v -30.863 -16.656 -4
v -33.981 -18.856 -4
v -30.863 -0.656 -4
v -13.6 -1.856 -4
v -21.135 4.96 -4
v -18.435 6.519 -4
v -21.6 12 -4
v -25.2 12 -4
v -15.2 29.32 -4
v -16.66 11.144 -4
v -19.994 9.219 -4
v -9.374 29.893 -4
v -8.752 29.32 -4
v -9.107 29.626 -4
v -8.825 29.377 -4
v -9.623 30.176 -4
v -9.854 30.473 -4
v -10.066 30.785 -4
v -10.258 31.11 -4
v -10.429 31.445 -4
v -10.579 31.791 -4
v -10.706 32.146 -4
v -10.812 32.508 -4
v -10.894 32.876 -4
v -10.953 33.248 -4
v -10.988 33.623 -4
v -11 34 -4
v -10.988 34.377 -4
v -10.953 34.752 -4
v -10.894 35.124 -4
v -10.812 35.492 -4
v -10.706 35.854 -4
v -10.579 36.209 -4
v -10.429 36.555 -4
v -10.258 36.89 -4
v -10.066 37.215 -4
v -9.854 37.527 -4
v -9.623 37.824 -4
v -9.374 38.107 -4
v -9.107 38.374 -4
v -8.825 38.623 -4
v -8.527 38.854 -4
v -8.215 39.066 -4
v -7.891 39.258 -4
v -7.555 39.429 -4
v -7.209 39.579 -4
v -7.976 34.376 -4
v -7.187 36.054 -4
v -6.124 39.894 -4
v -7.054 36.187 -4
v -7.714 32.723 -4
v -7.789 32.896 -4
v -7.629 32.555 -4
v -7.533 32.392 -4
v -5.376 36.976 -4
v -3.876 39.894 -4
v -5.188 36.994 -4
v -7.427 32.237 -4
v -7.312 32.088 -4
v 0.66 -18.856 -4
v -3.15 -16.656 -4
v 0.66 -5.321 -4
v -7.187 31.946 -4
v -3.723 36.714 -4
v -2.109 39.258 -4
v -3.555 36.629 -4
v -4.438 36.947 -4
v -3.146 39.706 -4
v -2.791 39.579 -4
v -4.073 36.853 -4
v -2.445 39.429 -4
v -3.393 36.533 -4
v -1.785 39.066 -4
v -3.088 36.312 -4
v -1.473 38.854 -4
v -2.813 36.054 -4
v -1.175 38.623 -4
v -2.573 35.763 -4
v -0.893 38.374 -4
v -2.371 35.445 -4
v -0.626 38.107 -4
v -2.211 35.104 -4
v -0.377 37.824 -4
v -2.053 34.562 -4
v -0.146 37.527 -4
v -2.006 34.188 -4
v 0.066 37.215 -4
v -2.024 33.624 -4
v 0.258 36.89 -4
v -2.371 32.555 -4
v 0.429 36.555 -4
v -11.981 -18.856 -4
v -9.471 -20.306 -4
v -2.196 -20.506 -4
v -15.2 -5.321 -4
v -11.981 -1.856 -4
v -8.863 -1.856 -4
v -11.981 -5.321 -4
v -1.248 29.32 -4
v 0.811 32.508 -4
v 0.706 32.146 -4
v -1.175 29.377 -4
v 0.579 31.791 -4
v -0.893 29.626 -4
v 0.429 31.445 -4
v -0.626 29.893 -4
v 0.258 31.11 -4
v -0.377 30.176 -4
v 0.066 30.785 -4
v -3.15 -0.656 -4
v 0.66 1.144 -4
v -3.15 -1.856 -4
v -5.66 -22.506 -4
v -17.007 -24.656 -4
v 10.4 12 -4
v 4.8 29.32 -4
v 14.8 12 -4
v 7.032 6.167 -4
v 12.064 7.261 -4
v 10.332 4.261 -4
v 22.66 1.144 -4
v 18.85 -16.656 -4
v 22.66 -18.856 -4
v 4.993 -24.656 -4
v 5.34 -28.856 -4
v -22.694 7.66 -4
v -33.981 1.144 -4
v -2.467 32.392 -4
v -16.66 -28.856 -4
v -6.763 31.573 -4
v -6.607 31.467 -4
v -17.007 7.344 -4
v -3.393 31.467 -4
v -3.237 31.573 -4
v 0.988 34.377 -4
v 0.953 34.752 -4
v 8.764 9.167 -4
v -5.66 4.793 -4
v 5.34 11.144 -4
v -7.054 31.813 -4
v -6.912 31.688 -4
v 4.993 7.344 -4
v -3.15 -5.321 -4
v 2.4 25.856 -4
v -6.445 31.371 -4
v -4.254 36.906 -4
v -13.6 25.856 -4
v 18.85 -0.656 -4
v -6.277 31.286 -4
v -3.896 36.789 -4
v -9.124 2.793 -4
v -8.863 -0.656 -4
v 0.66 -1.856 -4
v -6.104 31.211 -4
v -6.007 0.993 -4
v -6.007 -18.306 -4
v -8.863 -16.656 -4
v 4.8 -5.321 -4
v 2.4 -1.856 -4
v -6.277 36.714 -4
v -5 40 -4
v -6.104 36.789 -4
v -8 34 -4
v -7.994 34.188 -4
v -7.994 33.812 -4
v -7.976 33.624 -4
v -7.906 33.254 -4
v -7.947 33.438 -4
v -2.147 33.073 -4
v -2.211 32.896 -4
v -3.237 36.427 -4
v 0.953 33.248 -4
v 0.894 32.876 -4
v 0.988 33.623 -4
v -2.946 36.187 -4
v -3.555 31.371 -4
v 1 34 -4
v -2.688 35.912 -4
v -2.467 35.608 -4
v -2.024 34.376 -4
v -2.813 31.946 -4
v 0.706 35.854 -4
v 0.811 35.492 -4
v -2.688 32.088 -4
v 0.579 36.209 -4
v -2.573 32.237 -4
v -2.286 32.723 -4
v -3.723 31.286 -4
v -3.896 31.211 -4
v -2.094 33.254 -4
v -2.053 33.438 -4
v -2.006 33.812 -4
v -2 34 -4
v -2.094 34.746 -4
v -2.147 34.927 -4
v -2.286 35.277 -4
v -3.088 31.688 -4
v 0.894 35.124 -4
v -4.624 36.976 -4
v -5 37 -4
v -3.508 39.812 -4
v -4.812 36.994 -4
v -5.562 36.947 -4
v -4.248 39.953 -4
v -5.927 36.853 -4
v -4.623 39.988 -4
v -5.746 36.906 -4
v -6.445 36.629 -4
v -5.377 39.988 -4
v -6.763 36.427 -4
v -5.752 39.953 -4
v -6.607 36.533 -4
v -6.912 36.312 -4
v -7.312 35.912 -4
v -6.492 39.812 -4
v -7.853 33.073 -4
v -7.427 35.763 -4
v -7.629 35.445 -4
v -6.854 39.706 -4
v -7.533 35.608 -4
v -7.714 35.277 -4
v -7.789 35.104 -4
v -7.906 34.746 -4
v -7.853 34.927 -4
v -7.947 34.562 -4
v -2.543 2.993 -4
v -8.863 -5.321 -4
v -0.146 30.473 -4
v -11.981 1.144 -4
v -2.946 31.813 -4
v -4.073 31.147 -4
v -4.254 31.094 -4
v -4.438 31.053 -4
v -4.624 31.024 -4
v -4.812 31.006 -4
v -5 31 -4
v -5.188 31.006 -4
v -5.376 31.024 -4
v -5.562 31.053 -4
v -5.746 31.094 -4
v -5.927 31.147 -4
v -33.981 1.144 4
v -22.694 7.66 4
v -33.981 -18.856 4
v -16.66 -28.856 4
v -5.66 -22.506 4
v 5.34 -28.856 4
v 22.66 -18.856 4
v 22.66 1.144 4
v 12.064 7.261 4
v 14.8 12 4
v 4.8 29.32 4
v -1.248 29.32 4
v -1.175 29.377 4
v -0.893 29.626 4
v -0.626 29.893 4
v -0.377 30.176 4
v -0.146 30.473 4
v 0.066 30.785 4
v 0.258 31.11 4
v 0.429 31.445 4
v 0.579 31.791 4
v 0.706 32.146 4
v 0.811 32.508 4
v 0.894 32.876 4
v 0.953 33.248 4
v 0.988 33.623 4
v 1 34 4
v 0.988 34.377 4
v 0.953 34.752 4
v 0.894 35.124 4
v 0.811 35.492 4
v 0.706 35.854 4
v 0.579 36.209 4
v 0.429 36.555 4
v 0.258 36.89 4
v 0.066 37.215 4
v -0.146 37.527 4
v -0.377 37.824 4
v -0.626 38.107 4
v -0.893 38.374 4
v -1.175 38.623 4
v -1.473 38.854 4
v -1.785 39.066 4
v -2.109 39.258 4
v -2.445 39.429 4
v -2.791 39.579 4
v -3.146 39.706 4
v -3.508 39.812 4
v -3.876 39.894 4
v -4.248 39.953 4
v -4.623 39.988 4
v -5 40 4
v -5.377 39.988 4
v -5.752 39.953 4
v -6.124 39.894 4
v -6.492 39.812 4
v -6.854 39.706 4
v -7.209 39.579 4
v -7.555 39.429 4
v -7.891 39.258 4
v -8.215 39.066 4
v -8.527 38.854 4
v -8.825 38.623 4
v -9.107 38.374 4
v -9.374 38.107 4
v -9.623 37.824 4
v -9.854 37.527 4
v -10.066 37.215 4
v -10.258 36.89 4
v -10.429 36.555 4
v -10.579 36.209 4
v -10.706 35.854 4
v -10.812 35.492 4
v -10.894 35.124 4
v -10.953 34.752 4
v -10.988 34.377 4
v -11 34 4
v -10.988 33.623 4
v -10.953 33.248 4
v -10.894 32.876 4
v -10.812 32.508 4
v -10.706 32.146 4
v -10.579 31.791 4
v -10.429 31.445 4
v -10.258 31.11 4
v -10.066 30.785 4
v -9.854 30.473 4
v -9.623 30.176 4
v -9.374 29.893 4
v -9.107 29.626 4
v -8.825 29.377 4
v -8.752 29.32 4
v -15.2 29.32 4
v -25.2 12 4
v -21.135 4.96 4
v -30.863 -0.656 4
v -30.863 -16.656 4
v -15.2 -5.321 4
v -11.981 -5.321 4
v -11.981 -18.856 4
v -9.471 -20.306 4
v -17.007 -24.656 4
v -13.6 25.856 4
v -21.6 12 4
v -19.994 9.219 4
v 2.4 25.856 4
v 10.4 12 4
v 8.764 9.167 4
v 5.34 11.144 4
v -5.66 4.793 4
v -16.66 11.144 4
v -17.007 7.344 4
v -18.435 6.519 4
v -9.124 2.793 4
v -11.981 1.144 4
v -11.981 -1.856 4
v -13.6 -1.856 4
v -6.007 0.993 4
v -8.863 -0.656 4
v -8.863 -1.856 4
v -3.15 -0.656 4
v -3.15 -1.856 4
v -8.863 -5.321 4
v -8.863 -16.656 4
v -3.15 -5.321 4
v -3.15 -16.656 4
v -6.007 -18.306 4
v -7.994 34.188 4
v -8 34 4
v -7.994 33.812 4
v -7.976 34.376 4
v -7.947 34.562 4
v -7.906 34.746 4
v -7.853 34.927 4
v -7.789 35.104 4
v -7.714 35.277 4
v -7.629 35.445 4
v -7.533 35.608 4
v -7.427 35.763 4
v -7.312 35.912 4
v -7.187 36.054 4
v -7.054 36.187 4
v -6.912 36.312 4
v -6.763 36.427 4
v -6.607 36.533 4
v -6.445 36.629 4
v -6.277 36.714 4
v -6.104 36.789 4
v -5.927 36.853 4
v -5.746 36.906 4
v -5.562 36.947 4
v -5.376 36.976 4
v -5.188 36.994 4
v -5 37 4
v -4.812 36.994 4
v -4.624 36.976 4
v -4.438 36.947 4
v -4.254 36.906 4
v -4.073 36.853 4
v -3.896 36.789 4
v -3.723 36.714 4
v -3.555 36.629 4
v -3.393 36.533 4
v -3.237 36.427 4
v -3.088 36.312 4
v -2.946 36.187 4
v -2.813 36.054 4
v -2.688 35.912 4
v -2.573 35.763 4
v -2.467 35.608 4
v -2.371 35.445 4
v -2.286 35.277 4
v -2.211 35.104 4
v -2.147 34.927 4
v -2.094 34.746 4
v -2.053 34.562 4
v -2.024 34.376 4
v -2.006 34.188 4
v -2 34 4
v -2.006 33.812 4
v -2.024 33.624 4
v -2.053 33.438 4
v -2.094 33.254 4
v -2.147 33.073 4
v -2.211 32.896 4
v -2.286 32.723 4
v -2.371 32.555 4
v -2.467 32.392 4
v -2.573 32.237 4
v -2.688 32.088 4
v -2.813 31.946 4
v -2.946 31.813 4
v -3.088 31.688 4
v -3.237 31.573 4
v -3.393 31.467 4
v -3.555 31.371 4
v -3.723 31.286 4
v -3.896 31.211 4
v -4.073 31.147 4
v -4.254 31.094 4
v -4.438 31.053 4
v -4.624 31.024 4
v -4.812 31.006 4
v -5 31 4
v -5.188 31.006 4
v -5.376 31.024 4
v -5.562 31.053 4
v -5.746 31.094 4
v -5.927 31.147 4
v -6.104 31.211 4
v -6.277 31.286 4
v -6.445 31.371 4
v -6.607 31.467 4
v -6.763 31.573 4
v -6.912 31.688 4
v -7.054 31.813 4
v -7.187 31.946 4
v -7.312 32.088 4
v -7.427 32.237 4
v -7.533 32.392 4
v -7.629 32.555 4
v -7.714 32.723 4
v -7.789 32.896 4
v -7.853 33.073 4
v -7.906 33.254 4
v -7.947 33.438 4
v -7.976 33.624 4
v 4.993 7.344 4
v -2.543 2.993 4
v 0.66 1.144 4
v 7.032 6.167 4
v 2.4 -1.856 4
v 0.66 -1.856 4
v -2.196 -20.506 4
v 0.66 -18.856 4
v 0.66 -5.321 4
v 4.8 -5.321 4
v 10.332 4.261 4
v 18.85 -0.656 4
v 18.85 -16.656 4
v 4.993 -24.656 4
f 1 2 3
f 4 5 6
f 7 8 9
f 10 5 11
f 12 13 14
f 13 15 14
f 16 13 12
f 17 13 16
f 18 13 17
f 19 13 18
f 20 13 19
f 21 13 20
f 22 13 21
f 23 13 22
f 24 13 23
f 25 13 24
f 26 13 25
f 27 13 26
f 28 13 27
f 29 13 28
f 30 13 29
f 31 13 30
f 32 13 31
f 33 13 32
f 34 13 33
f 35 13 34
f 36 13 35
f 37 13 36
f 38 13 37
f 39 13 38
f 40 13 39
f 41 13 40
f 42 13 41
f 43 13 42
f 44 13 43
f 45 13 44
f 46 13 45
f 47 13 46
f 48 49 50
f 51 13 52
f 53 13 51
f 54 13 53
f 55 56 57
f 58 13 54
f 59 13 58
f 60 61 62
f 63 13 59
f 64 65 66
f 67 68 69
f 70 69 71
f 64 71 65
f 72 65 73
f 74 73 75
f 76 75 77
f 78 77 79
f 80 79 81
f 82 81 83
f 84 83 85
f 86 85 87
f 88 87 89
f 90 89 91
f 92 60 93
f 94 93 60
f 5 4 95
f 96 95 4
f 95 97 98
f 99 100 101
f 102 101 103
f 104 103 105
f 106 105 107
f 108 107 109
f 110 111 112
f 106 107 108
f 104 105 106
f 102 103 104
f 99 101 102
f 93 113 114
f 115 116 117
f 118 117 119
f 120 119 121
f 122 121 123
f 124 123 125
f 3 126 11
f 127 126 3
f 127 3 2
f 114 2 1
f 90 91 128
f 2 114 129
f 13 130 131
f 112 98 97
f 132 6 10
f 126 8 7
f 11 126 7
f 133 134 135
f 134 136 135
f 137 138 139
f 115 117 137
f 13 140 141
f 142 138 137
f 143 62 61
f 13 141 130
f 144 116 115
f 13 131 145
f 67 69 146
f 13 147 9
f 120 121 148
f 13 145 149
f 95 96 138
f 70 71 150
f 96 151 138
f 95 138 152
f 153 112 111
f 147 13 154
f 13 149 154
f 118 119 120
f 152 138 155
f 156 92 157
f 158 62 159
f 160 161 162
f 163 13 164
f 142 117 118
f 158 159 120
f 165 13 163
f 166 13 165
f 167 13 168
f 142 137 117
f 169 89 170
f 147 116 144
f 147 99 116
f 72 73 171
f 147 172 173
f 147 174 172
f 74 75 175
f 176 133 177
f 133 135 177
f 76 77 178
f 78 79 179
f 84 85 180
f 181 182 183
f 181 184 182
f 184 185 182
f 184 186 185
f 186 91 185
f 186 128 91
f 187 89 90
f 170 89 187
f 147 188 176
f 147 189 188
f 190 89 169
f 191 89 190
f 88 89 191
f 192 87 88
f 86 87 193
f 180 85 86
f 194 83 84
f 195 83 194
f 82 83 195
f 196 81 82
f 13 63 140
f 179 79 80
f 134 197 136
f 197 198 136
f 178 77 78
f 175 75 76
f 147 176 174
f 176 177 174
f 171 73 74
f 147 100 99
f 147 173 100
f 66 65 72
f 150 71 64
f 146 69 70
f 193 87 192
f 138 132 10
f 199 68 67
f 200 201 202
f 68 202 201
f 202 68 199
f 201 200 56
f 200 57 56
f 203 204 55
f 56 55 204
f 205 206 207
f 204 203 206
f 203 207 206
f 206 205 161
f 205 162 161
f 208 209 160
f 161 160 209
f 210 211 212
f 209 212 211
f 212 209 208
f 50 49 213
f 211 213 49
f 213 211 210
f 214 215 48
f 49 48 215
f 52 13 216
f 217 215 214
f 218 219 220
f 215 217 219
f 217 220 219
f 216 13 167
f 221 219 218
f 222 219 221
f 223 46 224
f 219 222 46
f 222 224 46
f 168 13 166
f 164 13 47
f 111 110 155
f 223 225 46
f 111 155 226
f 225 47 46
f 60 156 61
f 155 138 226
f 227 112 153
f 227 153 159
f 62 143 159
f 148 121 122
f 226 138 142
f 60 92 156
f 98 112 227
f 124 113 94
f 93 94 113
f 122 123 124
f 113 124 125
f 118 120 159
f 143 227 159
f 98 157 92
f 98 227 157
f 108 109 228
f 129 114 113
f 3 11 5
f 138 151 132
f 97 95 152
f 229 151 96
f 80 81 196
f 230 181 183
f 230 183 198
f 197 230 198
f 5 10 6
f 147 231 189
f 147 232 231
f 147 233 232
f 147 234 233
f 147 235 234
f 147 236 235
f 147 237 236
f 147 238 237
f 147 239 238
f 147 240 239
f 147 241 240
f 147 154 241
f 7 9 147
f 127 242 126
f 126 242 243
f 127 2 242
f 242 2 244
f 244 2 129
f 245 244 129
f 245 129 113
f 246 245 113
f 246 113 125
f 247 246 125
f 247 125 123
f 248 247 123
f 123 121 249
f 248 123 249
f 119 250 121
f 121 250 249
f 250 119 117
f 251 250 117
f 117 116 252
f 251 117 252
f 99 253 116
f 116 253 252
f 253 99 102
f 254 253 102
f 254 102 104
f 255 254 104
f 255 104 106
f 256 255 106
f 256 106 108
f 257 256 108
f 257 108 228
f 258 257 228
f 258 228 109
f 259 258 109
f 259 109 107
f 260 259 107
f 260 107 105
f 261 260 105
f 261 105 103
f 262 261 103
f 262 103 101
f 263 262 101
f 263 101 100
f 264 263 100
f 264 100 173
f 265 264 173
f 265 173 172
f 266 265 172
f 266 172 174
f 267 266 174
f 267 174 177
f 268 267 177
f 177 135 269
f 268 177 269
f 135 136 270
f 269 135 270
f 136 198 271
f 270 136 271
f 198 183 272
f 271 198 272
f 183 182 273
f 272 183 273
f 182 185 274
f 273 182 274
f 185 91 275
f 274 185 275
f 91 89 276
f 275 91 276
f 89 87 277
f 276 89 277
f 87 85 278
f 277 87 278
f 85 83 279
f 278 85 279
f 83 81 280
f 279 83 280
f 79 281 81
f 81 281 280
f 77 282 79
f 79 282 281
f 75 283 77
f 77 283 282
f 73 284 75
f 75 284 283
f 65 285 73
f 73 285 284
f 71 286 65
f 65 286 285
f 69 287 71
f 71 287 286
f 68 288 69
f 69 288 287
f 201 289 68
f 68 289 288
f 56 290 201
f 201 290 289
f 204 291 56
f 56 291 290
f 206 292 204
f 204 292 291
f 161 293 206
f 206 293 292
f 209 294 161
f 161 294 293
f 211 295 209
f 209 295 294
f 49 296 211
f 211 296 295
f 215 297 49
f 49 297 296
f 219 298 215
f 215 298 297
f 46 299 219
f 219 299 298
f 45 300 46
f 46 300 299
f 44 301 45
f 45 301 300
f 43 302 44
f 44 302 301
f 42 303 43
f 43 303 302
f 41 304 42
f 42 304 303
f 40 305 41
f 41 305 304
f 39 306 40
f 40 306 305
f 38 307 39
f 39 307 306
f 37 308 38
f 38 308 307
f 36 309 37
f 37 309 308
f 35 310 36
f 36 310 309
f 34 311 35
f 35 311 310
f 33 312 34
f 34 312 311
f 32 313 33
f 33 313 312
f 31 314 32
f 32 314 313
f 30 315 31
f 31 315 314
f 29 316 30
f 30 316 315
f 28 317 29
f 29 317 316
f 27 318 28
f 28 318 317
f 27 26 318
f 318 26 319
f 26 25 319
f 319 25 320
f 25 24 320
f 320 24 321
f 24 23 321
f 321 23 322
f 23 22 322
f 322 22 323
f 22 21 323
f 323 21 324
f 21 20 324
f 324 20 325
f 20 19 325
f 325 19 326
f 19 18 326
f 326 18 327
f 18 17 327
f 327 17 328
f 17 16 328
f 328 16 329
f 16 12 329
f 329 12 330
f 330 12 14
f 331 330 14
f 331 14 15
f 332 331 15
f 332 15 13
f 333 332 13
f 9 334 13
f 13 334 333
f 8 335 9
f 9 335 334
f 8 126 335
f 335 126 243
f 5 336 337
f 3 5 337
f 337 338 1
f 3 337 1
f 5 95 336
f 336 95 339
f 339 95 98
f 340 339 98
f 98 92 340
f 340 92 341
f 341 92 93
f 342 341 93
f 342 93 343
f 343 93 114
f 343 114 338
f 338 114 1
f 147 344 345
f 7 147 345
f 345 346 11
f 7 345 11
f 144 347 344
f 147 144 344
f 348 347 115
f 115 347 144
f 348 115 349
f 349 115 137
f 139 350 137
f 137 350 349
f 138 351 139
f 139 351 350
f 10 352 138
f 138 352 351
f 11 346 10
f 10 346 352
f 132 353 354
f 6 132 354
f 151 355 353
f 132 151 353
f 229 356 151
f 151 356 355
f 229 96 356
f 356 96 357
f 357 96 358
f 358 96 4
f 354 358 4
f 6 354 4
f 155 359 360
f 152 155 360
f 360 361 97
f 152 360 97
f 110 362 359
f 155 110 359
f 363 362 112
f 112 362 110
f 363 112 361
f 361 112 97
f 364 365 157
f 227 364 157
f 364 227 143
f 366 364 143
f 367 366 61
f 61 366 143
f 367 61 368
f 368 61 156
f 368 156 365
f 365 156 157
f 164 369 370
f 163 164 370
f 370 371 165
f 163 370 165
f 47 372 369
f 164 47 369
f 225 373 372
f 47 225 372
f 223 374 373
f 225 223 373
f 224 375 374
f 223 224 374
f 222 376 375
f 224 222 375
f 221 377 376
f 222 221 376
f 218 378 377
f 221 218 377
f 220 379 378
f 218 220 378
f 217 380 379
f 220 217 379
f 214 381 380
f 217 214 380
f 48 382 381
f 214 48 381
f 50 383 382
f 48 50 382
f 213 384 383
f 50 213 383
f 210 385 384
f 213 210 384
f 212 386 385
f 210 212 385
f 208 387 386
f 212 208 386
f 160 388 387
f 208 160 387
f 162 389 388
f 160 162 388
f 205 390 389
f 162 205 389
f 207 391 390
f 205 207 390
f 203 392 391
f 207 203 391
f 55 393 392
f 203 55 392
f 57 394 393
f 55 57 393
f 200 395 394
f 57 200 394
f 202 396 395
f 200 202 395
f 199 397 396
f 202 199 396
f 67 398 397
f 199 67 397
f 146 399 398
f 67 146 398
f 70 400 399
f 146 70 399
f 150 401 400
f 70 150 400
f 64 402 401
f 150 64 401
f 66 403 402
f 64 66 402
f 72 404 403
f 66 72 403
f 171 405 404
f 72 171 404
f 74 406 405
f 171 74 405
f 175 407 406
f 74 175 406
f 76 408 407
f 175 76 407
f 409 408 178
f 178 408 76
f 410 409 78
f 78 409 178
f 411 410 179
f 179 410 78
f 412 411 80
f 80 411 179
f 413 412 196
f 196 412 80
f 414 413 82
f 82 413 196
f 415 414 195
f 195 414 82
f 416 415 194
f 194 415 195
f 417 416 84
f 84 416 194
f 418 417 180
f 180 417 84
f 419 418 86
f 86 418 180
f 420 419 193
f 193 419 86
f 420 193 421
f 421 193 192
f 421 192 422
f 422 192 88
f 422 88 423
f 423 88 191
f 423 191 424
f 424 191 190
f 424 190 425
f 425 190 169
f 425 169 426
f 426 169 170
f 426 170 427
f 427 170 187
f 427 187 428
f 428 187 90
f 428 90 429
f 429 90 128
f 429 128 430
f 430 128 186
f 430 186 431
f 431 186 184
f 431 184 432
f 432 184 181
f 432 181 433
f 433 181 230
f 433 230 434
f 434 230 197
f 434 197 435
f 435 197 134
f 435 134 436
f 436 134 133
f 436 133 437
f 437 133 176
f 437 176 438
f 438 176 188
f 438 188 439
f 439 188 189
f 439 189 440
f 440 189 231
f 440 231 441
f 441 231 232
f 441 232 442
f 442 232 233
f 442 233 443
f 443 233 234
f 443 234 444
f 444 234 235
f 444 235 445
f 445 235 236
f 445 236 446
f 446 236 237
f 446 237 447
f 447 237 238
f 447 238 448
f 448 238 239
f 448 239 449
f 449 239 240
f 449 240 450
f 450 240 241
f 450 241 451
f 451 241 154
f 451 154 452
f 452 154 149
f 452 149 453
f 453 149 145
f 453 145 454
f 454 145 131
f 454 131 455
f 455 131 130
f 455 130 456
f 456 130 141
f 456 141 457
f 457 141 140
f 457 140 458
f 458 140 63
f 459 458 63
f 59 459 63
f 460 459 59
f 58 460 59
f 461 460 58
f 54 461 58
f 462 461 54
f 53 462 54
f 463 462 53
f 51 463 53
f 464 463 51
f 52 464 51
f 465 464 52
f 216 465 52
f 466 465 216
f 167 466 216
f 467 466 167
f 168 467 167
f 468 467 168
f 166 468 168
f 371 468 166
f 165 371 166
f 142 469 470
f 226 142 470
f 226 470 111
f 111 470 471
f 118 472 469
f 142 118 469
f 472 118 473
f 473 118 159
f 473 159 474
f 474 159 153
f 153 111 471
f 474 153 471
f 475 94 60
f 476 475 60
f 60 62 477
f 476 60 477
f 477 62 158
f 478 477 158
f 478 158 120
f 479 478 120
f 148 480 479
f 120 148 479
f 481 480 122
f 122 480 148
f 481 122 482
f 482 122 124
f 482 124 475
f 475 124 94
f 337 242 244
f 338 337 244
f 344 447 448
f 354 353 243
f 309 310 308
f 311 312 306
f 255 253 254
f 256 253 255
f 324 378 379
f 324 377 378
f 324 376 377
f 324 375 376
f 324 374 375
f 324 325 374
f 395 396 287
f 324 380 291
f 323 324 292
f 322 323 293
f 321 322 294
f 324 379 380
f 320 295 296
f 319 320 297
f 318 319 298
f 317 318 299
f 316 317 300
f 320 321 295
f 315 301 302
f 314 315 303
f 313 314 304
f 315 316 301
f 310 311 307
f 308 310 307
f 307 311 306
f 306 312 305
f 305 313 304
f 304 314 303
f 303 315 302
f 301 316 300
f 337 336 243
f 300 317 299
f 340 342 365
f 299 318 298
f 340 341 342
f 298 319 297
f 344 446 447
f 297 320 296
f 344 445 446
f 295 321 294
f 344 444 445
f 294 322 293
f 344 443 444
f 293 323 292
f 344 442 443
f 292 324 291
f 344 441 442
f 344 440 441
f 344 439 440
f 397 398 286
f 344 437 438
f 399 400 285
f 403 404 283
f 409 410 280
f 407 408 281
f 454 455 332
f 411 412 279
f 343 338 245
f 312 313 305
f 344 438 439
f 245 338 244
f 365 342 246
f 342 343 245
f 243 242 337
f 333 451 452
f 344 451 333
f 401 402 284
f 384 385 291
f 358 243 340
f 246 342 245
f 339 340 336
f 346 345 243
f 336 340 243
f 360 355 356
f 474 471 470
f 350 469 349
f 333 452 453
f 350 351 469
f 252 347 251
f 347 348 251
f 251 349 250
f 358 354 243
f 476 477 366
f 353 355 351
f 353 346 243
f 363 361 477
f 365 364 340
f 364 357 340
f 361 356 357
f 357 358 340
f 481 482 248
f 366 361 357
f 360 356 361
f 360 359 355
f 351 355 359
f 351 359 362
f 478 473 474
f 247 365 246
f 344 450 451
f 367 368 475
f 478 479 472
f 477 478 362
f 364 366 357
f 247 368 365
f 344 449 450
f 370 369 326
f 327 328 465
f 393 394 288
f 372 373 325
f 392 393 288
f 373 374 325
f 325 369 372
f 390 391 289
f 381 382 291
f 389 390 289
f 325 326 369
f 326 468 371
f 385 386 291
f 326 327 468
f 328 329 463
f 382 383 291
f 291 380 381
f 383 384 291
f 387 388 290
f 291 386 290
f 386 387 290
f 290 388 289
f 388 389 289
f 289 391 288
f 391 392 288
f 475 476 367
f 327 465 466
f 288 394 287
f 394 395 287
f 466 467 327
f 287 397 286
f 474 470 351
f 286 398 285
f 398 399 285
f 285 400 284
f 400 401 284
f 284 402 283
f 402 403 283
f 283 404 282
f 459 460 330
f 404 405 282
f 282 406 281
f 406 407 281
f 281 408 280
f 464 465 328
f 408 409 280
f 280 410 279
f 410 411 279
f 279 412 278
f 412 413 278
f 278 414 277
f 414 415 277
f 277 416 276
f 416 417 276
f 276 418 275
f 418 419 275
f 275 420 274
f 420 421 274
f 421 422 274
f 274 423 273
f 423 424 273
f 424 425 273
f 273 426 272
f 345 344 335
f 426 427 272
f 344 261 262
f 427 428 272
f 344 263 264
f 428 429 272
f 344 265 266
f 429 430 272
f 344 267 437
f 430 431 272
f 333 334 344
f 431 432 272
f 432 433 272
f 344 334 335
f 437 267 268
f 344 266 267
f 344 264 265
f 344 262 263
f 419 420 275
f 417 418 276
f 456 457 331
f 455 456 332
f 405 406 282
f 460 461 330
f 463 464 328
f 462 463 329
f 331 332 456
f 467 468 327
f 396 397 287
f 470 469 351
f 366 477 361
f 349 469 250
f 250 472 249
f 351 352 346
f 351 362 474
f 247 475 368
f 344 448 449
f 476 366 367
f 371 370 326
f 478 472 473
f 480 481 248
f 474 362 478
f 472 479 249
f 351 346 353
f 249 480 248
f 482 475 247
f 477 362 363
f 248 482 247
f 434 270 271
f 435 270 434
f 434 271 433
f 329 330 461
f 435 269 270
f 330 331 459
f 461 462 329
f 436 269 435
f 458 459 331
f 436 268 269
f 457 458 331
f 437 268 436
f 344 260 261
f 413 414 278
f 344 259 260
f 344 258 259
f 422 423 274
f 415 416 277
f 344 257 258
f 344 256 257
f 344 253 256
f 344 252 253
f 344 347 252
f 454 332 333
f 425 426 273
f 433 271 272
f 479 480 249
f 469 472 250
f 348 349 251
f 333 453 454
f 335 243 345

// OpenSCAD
scale([2,2,1]) {
translate([-2.5, 17, 0])
difference(){
cylinder(h=8,r=3,$fn=100, center=true);
scale([1, 1, 1.2])
cylinder(h=8,r=1.5,$fn=100, center=true);
}//end difference

difference(){
rotate([0, 0, -30])
translate([-5, -8, 0])
cylinder(h=8,r=10,$fn=6, center=true);
scale([.8, .8, 1.2])
rotate([0, 0, -30])
translate([-6.5, -10, 0])
cylinder(h=8,r=10,$fn=6, center=true);
}//end difference

translate([11,0,0])
difference(){
rotate([0, 0, -30])
translate([-5, -8, 0])
cylinder(h=8,r=10,$fn=6, center=true);
scale([.8, .8, 1.2])
rotate([0, 0, -30])
translate([-6.5, -10, 0])
cylinder(h=8,r=10,$fn=6, center=true);
}//end difference

translate([2.4, 14, 0])
difference(){
translate([-5, -8, 0])
cylinder(h=8,r=10,$fn=6, center=true);
scale([.8, .8, 1.2])
translate([-6.5, -10, 0])
cylinder(h=8,r=10,$fn=6, center=true);
}//end difference
}//end scale
